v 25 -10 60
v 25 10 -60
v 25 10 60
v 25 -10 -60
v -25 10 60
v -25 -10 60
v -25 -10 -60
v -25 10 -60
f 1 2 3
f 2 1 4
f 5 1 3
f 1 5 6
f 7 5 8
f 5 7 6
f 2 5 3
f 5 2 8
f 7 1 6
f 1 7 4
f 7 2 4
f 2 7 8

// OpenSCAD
// Define the dimensions of the rectangular block
block_length = 50;  // Length of the block
block_width = 20;   // Width of the block
block_height = 20;  // Height of the block (increased to match original model)

// Function to create a rectangular block
module rectangular_block() {
    cube([block_length, block_width, block_height], center = true);
}

// Assemble the layers based on the original model
module assembly() {
    // Layer 1: Topmost block
    translate([0, 0, block_height * 2.5])
        rectangular_block();

    // Layer 2: Second block
    translate([0, 0, block_height * 1.5])
        rectangular_block();

    // Layer 3: Third block
    translate([0, 0, block_height * 0.5])
        rectangular_block();

    // Layer 4: Fourth block
    translate([0, 0, -block_height * 0.5])
        rectangular_block();

    // Layer 5: Fifth block
    translate([0, 0, -block_height * 1.5])
        rectangular_block();

    // Layer 6: Bottommost block
    translate([0, 0, -block_height * 2.5])
        rectangular_block();
}

// Render the assembly
assembly();
